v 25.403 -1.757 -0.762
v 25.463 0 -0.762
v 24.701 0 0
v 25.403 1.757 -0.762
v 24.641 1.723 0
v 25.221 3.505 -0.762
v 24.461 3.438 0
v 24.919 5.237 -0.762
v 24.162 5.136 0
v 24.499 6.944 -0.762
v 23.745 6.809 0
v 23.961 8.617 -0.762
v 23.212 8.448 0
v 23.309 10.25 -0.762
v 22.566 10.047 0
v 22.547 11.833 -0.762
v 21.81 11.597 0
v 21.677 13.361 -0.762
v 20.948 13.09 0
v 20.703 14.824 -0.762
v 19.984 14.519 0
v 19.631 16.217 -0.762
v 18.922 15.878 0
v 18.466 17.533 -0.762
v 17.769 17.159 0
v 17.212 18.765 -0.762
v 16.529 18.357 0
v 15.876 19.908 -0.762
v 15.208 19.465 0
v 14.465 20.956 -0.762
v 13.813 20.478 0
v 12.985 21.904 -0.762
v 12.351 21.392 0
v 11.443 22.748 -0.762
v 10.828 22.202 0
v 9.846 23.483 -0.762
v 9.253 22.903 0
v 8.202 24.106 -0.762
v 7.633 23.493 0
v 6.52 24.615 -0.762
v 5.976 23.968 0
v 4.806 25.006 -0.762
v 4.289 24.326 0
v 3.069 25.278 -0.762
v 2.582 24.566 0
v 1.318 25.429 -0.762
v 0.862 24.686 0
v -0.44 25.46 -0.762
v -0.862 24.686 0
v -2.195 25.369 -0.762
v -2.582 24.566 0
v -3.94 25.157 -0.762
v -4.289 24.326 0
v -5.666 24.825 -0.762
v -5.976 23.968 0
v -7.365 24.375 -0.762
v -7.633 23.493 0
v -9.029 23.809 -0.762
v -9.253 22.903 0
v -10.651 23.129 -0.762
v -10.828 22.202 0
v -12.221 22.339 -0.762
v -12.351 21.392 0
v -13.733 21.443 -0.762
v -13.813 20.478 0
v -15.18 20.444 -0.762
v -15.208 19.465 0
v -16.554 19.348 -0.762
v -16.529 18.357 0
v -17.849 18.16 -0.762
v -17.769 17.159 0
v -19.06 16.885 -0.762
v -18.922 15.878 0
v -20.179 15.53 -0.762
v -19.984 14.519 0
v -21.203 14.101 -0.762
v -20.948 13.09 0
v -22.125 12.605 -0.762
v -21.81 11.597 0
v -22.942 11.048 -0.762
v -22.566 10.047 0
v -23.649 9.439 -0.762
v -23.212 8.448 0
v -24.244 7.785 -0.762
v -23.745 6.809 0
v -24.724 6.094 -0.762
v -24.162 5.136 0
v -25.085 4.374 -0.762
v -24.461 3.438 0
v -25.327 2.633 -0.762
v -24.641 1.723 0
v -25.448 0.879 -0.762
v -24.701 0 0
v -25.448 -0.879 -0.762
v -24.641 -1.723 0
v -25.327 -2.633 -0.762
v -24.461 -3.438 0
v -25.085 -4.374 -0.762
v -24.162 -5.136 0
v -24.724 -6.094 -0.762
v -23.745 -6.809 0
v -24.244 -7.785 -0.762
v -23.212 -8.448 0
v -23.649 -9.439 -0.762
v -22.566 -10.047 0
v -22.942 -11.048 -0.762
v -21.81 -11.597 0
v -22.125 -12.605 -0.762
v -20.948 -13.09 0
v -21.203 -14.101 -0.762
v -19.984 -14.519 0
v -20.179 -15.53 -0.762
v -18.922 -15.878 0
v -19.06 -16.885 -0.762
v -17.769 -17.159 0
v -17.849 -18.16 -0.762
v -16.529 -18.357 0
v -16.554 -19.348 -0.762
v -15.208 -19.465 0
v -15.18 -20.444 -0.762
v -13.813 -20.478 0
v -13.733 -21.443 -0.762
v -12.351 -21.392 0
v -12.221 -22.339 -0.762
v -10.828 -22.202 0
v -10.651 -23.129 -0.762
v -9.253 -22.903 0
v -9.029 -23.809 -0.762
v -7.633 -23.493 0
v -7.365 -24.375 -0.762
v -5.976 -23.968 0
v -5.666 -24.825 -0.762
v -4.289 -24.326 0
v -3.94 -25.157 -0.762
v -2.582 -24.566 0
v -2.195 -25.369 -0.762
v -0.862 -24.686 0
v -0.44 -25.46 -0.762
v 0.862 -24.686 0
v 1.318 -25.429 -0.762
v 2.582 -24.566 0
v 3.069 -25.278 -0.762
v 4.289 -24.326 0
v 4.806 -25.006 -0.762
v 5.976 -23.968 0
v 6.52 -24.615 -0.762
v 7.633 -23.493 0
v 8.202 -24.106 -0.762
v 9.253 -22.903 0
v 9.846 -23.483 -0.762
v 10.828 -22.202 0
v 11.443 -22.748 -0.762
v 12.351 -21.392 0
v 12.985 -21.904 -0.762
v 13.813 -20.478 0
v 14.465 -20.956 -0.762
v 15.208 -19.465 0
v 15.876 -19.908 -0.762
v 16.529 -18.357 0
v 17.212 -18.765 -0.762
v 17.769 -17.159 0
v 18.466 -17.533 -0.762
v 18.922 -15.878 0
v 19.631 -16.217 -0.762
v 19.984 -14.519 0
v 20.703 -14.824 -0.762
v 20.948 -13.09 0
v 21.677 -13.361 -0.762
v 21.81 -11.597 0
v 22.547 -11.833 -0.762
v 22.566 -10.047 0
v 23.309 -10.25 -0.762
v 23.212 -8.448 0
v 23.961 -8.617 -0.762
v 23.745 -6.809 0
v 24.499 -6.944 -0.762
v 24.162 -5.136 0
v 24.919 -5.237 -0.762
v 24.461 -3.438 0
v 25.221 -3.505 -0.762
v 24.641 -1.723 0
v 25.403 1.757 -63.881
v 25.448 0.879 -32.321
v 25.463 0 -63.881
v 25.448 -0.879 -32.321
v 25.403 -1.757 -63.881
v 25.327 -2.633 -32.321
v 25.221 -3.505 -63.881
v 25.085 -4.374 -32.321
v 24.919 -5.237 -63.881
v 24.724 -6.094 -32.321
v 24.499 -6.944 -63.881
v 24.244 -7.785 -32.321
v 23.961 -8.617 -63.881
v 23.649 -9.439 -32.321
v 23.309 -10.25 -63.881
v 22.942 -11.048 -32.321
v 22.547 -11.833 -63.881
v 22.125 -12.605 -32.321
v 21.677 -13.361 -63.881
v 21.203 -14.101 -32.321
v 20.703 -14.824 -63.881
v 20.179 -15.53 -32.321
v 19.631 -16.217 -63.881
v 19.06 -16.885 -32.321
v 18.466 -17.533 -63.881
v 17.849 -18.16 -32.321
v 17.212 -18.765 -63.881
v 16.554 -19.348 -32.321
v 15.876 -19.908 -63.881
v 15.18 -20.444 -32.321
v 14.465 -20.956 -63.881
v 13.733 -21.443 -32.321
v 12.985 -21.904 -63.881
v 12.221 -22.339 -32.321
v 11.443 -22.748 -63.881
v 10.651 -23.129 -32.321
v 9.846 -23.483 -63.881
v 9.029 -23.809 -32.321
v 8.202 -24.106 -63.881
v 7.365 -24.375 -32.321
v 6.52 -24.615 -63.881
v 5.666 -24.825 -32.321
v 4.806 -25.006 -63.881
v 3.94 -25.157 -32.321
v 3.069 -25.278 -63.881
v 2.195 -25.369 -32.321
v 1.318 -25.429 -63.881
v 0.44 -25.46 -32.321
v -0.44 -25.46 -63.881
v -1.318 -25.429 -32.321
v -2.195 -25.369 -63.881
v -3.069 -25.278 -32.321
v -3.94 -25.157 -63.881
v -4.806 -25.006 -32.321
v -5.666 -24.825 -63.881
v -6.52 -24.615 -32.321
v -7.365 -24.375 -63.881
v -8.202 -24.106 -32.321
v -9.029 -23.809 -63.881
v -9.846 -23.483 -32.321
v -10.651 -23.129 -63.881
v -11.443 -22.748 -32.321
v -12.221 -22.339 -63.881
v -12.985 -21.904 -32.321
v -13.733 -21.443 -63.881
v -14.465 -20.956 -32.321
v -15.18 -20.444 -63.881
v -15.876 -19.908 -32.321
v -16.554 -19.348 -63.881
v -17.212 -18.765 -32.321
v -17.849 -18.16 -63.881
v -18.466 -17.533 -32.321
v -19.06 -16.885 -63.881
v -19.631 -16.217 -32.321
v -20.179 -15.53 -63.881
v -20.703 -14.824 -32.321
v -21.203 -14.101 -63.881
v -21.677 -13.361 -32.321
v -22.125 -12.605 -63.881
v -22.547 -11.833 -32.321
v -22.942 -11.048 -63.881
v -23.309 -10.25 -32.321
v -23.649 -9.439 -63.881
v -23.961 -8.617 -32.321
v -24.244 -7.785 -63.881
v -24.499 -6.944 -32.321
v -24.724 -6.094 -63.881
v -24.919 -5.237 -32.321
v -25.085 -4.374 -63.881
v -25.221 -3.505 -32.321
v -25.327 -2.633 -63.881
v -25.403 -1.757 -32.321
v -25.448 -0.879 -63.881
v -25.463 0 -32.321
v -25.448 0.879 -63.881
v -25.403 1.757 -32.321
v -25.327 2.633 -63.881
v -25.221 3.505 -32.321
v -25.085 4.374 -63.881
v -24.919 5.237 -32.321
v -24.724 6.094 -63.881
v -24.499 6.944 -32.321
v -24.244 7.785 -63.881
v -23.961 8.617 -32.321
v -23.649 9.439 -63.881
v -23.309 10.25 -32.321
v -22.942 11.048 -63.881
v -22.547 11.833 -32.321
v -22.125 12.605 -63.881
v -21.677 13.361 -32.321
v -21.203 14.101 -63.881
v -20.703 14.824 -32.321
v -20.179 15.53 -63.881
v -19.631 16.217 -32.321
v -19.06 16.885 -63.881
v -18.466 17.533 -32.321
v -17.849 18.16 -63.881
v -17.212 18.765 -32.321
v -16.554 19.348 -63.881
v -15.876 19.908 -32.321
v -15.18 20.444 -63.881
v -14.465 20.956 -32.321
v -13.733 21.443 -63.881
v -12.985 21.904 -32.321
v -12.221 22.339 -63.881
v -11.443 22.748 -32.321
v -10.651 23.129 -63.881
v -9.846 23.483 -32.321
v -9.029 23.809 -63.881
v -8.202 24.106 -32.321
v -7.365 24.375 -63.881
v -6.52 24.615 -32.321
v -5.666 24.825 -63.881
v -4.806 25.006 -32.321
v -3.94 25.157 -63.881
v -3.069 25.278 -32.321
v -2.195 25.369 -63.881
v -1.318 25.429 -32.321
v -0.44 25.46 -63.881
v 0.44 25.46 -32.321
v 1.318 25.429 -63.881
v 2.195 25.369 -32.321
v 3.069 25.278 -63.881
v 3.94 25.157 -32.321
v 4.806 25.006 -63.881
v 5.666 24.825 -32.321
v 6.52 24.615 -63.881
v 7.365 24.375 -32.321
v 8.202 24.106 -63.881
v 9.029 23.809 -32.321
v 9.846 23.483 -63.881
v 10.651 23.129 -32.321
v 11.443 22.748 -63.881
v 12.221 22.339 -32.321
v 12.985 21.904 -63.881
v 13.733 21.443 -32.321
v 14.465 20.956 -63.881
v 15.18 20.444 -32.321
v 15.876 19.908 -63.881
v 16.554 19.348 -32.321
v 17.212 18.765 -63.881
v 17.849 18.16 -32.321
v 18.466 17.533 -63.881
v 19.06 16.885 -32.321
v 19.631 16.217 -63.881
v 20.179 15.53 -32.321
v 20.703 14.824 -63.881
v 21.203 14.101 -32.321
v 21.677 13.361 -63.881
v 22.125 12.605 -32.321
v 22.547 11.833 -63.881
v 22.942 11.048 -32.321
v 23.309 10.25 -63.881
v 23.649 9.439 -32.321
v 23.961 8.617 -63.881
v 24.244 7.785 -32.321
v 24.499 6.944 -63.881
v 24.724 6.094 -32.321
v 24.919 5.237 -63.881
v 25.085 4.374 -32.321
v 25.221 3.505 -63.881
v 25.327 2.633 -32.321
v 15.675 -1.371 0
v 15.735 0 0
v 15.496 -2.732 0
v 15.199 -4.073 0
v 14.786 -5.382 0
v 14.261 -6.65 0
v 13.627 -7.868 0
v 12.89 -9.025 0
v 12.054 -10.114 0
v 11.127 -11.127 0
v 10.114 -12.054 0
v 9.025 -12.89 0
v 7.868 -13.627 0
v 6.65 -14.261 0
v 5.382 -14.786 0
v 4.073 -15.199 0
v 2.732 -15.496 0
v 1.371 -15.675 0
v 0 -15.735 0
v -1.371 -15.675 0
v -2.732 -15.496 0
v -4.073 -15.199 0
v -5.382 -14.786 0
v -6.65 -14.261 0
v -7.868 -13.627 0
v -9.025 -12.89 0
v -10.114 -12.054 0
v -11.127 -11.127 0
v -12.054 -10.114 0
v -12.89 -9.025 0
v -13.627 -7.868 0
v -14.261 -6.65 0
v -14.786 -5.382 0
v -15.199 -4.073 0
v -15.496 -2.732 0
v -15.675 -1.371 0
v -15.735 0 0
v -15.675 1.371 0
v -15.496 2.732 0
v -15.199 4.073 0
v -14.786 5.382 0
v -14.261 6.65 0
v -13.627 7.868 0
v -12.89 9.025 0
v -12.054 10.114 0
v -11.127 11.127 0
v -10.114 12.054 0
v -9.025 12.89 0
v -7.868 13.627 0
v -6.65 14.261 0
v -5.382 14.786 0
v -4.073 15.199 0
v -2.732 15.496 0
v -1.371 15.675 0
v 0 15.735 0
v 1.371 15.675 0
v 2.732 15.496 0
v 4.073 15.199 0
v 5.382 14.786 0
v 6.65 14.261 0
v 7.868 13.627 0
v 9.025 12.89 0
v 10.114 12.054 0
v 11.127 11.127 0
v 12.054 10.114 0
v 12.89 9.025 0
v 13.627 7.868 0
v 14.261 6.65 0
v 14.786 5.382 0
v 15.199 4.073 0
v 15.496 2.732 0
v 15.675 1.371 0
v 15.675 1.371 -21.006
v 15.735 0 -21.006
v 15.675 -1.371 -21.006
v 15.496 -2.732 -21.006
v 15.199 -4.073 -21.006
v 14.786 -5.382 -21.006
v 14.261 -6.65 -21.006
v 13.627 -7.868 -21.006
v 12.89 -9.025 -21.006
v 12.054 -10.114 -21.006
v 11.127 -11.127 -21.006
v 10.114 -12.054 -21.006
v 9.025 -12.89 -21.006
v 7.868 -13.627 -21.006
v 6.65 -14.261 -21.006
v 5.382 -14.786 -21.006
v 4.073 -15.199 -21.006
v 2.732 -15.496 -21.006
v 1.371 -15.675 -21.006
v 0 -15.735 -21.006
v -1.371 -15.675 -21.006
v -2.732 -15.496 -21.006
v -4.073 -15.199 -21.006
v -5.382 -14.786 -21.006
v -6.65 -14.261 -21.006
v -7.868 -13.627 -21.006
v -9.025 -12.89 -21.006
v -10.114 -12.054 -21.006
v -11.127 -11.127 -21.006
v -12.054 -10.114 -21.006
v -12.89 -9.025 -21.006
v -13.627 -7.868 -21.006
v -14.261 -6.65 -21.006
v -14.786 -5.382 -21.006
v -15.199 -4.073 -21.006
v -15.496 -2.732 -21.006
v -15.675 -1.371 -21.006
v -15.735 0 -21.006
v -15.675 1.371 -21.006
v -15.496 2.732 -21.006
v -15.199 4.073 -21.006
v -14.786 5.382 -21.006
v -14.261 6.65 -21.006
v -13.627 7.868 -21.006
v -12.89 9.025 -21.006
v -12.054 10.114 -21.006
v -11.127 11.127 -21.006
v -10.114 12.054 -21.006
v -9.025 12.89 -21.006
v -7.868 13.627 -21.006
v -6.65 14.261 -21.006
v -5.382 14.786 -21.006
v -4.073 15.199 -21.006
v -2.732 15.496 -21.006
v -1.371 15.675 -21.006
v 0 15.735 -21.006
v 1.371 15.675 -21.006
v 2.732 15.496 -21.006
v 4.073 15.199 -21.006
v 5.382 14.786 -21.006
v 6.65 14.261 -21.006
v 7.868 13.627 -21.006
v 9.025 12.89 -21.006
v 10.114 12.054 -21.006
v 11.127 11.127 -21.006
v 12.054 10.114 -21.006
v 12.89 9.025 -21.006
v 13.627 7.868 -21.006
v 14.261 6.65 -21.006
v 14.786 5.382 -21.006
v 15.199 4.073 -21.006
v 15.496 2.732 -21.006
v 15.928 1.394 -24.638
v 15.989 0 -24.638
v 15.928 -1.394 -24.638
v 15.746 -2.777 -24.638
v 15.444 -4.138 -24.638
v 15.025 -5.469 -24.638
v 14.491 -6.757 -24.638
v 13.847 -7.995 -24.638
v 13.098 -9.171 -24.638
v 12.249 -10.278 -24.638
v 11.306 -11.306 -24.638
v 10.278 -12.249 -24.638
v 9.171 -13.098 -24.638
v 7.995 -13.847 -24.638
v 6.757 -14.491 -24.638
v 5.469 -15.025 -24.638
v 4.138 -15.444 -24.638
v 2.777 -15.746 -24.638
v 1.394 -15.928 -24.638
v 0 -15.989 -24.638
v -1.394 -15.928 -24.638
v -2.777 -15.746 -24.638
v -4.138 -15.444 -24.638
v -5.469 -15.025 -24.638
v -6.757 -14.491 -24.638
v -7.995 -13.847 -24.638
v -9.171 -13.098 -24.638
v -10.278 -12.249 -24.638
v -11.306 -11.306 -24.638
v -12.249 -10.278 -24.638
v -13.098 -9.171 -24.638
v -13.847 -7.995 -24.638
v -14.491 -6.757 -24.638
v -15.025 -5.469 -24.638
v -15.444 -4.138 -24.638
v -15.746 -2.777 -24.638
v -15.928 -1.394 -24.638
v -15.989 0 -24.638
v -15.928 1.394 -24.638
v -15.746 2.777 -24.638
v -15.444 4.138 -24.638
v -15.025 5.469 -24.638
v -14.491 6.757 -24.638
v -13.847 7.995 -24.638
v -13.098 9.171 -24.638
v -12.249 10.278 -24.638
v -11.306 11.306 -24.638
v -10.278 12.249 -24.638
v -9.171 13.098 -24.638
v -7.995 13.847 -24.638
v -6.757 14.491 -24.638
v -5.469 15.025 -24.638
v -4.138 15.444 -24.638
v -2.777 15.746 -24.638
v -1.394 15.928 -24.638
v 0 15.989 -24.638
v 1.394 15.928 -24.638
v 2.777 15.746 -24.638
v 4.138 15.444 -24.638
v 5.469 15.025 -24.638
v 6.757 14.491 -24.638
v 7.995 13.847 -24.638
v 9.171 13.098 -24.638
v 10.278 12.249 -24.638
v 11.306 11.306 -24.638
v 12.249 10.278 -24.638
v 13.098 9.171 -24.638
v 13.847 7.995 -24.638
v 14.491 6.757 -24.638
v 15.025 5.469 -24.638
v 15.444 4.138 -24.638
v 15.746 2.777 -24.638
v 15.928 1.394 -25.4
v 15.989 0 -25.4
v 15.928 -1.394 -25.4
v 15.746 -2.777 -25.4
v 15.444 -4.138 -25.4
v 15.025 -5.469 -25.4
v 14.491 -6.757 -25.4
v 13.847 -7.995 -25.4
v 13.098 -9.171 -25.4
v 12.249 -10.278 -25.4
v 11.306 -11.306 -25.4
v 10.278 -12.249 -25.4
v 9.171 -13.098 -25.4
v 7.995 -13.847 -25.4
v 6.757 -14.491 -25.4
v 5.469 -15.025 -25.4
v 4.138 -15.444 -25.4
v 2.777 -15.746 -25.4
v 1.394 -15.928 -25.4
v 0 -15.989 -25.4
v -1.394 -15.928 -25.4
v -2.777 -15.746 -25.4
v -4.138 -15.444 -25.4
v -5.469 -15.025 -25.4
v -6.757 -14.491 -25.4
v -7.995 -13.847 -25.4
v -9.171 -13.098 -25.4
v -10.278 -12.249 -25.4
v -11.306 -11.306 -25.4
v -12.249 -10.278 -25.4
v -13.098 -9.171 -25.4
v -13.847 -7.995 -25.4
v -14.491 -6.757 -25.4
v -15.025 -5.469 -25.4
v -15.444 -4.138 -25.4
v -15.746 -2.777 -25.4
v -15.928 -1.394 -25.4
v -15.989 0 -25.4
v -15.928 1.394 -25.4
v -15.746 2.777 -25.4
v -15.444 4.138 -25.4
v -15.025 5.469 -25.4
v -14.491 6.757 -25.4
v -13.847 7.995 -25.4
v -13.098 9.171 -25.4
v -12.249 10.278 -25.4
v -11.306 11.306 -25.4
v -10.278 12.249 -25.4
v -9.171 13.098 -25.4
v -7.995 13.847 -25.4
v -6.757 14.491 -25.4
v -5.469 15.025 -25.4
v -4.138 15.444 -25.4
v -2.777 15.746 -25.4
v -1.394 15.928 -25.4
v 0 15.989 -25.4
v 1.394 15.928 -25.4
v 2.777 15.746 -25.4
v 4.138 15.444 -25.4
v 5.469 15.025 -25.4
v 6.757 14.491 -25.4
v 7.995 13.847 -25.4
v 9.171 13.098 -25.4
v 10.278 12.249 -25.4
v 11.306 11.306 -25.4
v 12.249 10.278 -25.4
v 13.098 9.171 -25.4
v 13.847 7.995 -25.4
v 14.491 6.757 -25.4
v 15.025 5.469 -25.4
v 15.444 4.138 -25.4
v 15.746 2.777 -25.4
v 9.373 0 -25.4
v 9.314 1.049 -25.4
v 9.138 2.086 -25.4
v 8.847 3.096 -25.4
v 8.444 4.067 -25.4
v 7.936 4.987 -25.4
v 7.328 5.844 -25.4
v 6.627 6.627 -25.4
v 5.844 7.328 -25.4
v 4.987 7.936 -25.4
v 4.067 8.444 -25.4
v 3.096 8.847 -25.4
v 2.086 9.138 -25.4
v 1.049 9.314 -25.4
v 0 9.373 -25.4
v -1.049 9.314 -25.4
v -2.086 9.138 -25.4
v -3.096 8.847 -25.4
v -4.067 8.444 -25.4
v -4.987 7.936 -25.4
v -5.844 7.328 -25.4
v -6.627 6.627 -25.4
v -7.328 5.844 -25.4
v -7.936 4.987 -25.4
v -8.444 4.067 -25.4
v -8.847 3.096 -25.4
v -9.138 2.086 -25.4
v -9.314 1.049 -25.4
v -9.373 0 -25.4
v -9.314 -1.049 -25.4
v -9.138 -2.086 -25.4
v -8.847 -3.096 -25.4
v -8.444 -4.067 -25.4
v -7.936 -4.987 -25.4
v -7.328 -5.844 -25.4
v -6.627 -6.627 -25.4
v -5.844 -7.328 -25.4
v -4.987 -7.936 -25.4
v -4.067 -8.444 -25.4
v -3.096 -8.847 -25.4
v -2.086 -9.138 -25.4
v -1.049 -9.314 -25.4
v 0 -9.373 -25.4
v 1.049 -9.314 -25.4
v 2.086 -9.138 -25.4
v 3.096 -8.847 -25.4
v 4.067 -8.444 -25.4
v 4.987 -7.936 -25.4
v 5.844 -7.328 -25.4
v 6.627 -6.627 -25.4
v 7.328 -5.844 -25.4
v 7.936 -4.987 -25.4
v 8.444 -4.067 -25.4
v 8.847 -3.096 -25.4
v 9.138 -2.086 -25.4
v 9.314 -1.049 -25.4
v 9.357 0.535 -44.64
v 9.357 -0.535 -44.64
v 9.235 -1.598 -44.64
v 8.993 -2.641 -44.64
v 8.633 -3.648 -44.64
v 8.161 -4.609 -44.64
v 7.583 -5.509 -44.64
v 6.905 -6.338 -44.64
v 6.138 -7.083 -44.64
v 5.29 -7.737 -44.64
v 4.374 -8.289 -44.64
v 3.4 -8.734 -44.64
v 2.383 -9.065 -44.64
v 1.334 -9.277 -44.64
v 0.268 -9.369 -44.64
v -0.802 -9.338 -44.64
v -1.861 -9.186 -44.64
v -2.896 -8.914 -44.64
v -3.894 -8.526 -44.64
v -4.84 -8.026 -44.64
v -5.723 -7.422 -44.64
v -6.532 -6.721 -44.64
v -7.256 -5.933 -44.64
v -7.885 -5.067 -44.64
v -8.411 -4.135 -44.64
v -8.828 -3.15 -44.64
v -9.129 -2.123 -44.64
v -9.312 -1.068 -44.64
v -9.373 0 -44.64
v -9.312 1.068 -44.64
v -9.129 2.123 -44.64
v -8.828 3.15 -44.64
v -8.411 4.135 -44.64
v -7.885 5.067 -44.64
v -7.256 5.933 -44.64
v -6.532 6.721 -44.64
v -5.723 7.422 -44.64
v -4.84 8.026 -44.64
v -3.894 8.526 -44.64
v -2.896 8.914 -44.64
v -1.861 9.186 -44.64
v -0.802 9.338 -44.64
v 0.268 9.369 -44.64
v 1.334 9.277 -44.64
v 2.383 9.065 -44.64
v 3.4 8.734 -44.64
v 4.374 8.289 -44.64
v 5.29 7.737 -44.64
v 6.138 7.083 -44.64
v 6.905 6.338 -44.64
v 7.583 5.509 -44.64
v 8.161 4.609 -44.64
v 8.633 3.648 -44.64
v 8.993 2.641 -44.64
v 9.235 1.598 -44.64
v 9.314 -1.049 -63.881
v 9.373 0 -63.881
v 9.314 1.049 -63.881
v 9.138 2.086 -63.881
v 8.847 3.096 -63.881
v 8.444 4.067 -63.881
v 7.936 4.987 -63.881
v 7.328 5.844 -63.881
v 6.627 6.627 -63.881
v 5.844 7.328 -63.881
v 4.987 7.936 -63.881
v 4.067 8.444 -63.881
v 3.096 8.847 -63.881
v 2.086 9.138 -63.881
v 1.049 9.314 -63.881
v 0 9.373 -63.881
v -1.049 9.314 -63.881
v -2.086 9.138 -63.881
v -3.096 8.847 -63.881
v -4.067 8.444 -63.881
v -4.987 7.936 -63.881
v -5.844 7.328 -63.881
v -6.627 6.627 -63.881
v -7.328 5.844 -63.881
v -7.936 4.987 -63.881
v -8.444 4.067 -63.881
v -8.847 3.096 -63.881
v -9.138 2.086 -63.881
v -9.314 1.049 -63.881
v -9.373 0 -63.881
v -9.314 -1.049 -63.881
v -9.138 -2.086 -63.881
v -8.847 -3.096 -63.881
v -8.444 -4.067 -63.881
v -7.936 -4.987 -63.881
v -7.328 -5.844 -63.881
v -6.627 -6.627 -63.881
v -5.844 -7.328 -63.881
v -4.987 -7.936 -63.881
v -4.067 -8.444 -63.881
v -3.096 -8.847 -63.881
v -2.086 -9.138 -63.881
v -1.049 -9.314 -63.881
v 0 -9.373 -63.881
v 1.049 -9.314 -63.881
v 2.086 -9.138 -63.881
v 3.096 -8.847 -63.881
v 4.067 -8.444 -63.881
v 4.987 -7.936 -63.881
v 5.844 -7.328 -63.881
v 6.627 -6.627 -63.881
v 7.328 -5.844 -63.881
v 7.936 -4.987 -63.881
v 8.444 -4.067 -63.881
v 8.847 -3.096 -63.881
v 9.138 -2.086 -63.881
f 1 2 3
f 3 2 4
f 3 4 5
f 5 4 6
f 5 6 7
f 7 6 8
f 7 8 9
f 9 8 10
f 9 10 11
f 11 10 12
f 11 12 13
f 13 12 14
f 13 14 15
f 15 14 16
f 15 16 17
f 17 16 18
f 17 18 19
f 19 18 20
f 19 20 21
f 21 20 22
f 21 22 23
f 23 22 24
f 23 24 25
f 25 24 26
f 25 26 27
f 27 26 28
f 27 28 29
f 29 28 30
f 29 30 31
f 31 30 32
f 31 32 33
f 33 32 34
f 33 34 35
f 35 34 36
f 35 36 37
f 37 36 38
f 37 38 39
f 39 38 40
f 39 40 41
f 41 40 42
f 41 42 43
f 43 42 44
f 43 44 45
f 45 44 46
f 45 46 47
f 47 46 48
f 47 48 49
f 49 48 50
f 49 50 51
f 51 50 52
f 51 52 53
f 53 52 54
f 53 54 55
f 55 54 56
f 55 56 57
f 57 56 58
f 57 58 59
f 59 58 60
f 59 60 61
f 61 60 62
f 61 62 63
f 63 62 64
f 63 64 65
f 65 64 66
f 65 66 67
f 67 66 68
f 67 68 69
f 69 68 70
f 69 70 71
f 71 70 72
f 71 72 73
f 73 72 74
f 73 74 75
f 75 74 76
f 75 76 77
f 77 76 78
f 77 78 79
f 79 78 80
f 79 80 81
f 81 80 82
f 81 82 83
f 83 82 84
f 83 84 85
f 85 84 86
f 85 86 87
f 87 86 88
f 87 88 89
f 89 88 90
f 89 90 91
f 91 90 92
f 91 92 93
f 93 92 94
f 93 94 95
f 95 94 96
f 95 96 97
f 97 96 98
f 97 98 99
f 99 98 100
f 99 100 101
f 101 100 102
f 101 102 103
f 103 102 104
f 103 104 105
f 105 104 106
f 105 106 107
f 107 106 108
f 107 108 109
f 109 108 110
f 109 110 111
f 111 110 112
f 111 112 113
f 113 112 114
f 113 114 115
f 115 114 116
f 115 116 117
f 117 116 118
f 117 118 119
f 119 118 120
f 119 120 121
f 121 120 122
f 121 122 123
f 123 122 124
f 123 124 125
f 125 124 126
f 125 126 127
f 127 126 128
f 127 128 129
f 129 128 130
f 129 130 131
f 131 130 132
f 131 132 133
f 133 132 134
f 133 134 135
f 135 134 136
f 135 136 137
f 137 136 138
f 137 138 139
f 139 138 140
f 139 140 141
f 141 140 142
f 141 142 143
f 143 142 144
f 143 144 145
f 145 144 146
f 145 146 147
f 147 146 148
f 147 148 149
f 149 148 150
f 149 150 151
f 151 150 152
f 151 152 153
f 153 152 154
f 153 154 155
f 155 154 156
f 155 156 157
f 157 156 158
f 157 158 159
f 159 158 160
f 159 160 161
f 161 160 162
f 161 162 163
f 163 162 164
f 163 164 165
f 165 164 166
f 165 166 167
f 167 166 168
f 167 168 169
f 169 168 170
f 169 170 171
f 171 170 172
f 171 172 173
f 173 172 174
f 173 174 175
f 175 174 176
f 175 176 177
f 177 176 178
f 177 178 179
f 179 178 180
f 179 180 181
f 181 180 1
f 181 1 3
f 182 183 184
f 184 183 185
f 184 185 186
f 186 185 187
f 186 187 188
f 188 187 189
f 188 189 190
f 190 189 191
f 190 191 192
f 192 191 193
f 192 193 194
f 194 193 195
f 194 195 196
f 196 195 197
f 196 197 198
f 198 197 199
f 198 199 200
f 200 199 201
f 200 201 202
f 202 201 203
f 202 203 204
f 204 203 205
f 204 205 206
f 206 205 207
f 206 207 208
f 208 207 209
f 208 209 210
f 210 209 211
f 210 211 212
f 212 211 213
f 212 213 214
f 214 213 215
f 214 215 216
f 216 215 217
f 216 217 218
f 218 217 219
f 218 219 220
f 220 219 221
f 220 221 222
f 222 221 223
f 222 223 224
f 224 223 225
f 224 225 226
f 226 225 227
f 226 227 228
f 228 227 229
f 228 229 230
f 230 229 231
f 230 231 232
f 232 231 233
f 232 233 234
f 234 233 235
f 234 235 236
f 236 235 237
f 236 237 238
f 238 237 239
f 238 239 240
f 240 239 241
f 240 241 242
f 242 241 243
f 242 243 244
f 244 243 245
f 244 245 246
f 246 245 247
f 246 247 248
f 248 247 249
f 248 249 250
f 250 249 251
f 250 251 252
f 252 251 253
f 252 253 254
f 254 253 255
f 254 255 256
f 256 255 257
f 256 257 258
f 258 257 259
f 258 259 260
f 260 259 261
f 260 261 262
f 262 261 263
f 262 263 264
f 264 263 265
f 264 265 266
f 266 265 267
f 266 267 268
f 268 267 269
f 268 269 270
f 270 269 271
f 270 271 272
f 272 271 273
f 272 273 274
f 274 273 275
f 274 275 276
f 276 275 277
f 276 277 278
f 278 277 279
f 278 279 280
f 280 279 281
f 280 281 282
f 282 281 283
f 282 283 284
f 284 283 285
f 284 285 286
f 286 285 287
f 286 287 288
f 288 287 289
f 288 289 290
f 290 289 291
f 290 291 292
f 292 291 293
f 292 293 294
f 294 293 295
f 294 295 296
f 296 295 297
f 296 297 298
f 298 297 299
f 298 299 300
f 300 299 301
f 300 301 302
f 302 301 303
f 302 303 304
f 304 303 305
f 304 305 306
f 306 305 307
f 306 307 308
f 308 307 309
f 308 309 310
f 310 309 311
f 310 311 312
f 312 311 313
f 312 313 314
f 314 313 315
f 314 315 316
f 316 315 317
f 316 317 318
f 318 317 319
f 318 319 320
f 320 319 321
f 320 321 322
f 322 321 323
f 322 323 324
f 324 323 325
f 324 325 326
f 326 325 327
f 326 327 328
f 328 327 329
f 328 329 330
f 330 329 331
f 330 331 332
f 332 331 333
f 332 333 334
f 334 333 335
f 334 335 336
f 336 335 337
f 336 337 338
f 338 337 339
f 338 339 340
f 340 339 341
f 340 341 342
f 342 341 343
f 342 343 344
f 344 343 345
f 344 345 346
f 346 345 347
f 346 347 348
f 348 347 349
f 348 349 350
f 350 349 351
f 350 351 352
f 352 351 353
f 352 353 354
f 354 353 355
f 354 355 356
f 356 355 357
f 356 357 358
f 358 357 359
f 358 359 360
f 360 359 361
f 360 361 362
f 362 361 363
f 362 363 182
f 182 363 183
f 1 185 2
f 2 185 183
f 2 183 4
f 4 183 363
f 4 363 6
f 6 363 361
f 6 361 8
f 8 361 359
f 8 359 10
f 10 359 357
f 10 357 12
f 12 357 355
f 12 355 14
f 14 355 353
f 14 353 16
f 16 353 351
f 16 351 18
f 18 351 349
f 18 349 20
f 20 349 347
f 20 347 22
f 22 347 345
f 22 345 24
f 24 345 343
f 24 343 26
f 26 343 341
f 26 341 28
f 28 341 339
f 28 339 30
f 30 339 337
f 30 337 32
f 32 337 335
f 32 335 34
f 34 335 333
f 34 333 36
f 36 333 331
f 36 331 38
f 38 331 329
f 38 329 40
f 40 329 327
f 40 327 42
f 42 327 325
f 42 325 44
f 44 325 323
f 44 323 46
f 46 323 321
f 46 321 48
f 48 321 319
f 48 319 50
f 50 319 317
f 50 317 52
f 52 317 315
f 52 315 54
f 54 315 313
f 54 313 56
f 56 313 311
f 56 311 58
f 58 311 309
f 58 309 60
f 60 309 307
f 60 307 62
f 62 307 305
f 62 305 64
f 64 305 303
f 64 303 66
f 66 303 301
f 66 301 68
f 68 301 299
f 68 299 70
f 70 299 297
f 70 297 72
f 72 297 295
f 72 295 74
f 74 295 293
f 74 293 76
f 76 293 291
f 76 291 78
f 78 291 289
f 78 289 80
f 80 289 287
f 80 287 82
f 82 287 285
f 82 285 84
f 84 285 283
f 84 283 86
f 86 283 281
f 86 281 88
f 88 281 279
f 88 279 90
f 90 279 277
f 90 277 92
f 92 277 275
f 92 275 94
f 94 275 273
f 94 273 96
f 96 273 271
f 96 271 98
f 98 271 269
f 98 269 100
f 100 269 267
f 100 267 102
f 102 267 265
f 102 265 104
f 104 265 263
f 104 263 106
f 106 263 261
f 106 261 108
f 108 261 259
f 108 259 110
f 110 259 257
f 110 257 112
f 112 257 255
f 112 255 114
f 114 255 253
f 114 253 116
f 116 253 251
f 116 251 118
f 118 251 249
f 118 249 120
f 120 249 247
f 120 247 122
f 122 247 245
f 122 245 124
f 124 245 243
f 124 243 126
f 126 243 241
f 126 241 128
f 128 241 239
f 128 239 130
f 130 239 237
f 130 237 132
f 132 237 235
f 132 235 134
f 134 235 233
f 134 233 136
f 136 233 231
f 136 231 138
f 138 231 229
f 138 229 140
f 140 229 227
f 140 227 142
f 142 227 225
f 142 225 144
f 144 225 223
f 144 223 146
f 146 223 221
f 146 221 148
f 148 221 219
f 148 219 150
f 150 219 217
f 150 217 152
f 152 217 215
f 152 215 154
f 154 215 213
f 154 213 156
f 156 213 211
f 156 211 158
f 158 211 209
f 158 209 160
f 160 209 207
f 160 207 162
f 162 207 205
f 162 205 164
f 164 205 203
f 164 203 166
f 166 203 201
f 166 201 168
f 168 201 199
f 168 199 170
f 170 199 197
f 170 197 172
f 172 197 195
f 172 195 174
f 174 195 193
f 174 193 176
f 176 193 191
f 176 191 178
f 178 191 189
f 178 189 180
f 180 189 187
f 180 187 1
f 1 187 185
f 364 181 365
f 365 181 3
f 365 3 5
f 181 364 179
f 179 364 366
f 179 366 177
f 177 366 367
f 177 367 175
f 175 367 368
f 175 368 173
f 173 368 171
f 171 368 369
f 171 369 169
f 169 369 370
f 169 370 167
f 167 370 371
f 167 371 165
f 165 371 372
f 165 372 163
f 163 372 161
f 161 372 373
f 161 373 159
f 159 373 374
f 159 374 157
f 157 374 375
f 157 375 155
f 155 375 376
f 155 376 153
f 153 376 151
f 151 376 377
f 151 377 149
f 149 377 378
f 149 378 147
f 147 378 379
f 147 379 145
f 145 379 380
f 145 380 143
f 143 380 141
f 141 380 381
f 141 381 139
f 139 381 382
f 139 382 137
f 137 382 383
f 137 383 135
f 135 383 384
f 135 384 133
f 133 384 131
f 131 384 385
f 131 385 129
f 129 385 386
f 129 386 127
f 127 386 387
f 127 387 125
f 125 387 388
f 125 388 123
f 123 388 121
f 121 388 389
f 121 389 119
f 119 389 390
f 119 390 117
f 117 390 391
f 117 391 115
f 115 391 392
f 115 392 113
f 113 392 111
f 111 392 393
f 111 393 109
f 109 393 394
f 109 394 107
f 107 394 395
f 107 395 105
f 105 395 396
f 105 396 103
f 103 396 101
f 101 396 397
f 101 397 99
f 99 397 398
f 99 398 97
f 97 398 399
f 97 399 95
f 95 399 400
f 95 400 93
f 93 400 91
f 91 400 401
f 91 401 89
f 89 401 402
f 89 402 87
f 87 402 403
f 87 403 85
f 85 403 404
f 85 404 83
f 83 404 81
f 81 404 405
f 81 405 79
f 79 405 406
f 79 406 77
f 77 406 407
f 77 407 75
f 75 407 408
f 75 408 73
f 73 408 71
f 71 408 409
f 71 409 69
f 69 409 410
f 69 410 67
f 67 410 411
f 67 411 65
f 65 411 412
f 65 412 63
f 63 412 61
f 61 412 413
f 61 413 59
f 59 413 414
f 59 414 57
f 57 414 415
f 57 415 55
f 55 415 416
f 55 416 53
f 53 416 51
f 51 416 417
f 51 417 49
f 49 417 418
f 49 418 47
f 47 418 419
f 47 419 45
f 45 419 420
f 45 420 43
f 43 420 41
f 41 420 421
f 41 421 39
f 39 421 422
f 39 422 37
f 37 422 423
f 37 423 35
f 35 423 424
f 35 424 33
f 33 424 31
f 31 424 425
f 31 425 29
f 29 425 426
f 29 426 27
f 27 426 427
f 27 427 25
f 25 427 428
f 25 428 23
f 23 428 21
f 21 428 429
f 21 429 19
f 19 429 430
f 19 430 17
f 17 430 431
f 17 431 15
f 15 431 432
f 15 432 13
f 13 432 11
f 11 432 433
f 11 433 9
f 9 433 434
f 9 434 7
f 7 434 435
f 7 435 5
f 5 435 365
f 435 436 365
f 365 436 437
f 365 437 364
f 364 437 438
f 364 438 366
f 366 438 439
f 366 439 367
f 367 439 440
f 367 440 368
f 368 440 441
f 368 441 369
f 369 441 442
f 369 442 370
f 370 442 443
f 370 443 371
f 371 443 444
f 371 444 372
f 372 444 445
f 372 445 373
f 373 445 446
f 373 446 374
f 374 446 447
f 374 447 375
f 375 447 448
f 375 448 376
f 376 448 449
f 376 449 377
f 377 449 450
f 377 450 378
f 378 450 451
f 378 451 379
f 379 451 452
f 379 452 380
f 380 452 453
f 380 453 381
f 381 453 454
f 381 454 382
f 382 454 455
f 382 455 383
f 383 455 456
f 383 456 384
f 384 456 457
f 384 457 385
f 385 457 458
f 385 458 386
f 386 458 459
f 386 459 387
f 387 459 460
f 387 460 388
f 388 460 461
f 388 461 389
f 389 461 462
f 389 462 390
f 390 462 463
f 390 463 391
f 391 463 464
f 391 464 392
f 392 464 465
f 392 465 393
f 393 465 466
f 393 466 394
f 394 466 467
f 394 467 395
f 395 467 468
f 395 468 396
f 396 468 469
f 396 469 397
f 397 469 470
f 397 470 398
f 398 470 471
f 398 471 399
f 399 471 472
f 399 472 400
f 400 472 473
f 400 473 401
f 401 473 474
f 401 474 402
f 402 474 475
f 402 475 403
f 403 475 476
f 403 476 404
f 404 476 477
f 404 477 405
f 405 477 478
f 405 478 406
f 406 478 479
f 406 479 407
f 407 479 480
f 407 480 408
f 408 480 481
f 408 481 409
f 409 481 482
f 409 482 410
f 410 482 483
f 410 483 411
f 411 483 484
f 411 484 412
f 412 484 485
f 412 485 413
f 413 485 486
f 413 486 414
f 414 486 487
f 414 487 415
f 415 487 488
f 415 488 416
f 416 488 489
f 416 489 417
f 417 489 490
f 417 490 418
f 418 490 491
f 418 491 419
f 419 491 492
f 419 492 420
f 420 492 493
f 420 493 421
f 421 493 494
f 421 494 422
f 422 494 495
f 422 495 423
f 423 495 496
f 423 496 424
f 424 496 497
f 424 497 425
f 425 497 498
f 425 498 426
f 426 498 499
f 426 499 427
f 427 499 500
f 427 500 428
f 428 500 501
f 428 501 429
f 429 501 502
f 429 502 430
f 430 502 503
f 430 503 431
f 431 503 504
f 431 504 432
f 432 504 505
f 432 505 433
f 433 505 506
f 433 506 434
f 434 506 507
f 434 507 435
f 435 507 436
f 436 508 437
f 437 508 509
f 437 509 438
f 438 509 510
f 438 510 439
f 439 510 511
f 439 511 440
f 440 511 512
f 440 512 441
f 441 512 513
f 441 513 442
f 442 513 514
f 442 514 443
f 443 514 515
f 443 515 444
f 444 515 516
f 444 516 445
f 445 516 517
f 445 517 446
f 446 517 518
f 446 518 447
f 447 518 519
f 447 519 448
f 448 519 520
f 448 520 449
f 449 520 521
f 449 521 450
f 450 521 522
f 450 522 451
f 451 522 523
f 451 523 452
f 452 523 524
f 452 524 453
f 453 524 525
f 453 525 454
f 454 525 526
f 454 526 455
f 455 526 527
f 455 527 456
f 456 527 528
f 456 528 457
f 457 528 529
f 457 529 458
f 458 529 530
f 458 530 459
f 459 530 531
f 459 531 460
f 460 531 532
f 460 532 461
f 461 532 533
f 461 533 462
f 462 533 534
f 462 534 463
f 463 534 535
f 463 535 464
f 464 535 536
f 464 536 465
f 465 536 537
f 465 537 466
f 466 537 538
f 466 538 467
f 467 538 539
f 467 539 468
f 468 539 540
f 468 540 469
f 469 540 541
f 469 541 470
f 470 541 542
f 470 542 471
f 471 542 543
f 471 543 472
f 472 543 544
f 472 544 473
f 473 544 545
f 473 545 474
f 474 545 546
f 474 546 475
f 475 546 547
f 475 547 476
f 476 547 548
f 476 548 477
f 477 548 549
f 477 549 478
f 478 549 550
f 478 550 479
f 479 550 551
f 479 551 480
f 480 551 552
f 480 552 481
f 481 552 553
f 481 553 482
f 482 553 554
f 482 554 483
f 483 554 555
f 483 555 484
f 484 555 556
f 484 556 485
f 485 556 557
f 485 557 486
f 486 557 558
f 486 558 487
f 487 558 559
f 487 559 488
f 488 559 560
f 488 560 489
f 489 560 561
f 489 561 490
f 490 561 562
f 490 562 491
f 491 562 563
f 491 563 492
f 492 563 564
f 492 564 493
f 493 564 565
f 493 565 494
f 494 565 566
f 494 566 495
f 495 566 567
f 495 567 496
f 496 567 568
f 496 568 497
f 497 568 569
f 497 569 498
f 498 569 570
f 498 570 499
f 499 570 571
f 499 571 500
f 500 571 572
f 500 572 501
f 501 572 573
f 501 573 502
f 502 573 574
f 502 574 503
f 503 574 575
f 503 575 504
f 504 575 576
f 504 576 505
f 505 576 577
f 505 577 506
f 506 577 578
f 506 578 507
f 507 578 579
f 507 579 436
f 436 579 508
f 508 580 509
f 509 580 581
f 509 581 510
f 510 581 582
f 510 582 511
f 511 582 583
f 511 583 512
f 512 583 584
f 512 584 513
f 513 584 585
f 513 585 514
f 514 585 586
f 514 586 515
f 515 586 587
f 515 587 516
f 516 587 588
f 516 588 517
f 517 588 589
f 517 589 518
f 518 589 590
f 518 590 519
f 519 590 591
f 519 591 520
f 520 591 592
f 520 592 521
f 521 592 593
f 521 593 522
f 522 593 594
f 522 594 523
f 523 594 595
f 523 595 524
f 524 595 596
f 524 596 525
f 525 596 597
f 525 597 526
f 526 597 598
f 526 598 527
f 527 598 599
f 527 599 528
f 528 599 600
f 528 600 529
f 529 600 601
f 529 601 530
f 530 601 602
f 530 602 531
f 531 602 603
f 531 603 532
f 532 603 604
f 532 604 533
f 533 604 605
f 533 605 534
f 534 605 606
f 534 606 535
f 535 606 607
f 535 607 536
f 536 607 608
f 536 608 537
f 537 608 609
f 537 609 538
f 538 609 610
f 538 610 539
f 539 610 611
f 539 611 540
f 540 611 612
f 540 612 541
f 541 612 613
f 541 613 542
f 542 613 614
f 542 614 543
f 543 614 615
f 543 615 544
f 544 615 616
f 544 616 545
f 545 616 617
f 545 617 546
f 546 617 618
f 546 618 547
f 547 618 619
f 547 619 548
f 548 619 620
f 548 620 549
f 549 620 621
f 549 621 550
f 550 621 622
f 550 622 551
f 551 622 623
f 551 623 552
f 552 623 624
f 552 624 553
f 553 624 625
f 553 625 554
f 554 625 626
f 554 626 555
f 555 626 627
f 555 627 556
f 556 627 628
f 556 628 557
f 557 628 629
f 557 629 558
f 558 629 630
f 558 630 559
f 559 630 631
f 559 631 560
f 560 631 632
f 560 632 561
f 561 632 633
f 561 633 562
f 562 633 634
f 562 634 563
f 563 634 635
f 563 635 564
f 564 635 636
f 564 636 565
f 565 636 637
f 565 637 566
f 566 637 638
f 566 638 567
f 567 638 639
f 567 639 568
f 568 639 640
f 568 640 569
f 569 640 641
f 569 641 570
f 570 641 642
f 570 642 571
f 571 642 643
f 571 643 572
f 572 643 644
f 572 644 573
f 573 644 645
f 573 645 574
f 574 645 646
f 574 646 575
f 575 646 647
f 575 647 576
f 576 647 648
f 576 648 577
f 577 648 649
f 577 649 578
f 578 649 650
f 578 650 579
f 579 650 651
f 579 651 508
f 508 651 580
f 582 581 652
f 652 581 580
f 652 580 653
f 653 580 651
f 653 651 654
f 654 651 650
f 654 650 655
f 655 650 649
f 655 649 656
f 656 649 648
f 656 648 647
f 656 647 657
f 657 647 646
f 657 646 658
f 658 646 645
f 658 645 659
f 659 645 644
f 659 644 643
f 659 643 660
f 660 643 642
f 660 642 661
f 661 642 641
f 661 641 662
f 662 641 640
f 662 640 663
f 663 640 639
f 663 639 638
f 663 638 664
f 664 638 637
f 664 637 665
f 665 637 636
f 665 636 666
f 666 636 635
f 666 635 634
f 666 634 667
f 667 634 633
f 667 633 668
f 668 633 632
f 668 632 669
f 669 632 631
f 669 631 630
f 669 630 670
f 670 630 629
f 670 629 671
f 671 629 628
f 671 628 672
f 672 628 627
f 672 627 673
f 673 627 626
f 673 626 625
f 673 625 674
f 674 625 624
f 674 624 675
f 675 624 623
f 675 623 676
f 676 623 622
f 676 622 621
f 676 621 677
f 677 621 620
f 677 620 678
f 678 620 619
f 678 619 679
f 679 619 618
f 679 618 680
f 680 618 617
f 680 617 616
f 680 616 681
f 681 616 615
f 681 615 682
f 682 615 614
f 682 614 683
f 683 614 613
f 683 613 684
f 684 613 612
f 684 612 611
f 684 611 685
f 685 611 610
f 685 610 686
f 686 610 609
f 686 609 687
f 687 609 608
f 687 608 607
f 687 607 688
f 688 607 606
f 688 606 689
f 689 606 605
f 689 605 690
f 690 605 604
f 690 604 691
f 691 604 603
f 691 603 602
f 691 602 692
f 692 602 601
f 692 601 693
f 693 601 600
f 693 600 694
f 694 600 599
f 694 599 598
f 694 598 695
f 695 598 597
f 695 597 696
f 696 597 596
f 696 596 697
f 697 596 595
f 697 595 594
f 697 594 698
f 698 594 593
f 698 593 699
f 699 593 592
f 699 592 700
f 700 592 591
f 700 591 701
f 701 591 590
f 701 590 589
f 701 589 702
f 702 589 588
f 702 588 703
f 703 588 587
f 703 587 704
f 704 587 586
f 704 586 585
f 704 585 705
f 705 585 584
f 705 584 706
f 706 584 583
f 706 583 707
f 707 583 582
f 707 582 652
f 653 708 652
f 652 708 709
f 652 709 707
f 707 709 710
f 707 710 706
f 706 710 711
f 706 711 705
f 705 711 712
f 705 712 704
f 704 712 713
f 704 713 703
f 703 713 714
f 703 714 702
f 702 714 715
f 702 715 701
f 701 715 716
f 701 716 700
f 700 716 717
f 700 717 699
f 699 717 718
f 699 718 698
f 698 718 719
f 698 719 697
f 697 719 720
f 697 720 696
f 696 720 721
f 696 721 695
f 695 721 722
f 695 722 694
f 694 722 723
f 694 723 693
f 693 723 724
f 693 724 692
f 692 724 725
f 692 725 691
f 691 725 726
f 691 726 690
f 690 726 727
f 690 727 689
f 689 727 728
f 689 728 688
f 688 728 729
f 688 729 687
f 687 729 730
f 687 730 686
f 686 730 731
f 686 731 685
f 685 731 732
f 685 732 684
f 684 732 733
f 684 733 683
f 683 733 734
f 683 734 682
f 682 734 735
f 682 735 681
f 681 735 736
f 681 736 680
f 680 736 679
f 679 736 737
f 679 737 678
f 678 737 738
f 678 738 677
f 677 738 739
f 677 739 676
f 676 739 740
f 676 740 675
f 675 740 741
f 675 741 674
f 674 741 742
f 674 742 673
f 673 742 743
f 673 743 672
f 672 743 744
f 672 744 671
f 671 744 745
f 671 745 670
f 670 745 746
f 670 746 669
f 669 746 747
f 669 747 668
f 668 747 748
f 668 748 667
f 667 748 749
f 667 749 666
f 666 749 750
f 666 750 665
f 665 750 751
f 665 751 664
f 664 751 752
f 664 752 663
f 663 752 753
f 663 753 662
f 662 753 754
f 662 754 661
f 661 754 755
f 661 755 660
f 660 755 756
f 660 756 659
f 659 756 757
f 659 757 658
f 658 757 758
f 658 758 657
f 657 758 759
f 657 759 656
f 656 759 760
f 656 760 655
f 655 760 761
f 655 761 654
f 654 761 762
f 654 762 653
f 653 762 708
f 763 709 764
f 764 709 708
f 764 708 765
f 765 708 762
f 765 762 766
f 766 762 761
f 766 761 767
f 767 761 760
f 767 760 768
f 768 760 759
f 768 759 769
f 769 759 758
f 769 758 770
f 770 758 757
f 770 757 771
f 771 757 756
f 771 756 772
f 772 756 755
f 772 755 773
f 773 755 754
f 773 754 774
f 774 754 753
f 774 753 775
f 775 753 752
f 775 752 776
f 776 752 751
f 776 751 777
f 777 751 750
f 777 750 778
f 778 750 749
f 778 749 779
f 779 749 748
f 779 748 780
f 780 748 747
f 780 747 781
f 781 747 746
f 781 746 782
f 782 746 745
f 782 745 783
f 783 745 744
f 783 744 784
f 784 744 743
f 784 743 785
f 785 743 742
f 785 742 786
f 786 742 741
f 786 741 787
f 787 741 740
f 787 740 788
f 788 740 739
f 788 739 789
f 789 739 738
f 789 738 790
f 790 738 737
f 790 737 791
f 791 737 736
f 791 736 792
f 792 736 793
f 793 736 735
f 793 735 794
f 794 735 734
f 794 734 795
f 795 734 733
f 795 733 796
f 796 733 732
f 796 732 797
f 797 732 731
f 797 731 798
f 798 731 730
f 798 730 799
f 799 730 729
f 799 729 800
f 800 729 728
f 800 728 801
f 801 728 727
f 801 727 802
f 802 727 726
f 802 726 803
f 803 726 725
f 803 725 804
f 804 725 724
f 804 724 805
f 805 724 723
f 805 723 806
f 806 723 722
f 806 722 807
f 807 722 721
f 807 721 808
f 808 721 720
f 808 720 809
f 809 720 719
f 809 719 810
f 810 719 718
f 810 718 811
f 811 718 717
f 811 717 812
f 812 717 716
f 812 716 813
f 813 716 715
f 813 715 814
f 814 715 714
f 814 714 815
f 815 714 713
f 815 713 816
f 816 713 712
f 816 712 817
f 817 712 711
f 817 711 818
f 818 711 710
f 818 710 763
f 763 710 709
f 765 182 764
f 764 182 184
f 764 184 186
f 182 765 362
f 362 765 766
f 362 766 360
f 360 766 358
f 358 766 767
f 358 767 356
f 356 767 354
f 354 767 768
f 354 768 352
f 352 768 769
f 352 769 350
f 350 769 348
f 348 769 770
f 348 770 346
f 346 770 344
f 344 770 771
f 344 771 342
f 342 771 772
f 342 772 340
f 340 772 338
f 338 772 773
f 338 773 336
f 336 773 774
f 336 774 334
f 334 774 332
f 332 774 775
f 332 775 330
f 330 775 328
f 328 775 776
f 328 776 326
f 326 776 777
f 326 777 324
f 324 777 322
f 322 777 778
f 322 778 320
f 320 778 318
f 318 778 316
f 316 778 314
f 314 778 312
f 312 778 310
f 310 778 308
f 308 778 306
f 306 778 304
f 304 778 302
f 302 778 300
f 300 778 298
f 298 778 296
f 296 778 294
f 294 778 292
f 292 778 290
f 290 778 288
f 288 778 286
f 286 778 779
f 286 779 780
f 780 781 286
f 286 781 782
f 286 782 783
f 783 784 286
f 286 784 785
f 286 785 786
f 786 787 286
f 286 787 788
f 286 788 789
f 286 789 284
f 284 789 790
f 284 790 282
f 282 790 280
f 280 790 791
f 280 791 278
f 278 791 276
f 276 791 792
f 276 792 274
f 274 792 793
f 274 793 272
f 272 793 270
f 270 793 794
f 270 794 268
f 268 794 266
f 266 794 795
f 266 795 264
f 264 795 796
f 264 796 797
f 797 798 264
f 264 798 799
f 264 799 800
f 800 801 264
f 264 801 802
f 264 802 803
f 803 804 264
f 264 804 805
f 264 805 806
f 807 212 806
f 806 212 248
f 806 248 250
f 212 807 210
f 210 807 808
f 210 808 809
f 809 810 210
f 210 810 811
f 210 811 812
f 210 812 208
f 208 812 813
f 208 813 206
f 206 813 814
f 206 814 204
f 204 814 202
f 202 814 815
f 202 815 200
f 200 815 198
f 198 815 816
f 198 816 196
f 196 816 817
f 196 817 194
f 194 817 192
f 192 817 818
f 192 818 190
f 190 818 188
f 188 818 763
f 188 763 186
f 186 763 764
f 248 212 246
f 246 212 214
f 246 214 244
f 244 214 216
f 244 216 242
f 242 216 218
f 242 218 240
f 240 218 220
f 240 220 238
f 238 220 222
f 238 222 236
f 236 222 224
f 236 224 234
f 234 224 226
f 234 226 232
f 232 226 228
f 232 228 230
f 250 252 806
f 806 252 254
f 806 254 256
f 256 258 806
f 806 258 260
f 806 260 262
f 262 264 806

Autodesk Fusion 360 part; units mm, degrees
sketch "Sketch1" plane through (0, 0, 0) normal (0, 1, 0) x (1, 0, 0)
  line L0 (25.4635, 63.881) -> (9.3726, 63.881)
  line L1 (9.3726, 63.881) -> (9.3726, 0)
  line L2 (9.3726, 0) -> (25.4635, 0)
  line L3 (25.4635, 0) -> (25.4635, 63.881)
  line L4 (15.7353, 0) -> (15.7353, 21.0056)
  line L5 (15.7353, 21.0056) -> (15.9893, 24.638)
  line L6 (15.9893, 24.638) -> (15.9893, 25.4)
  line L7 (15.9893, 25.4) -> (9.3726, 25.4)
  line L8 (0, 29.7705) -> (13.8983, 23.2896)
  dimension "d1" = 9.3726
  dimension "d2" = 25.4635
  dimension "d3" = 63.881
  dimension "d6" = 15.7353
  dimension "d7" = 0.762
  dimension "d8" = 4
  dimension "d9" = 25.4
  dimension "d10" = 0.254
  dimension "d11" = 65
revolve "Revolve1" add sketch "Sketch1" angle 360 about axis through (0, 0, 1.75) along (0, 0, 1) contours L0 L1 L2 L3 L4 L5 L6 L7
chamfer "Chamfer1" distance 0.762 angle 45 1 edges at (-23.7403, -9.208, 0)
equation "d1 = ( 0.738 / 2 ) * 1 in"
equation "d2 = 2.005 in / 2"
equation "d3 = 2.5 in + 0.015 in"
equation "d6 = ( 1.239 / 2 ) * 1 in"
equation "d11 = ( 130 / 2 ) * 1 deg"
